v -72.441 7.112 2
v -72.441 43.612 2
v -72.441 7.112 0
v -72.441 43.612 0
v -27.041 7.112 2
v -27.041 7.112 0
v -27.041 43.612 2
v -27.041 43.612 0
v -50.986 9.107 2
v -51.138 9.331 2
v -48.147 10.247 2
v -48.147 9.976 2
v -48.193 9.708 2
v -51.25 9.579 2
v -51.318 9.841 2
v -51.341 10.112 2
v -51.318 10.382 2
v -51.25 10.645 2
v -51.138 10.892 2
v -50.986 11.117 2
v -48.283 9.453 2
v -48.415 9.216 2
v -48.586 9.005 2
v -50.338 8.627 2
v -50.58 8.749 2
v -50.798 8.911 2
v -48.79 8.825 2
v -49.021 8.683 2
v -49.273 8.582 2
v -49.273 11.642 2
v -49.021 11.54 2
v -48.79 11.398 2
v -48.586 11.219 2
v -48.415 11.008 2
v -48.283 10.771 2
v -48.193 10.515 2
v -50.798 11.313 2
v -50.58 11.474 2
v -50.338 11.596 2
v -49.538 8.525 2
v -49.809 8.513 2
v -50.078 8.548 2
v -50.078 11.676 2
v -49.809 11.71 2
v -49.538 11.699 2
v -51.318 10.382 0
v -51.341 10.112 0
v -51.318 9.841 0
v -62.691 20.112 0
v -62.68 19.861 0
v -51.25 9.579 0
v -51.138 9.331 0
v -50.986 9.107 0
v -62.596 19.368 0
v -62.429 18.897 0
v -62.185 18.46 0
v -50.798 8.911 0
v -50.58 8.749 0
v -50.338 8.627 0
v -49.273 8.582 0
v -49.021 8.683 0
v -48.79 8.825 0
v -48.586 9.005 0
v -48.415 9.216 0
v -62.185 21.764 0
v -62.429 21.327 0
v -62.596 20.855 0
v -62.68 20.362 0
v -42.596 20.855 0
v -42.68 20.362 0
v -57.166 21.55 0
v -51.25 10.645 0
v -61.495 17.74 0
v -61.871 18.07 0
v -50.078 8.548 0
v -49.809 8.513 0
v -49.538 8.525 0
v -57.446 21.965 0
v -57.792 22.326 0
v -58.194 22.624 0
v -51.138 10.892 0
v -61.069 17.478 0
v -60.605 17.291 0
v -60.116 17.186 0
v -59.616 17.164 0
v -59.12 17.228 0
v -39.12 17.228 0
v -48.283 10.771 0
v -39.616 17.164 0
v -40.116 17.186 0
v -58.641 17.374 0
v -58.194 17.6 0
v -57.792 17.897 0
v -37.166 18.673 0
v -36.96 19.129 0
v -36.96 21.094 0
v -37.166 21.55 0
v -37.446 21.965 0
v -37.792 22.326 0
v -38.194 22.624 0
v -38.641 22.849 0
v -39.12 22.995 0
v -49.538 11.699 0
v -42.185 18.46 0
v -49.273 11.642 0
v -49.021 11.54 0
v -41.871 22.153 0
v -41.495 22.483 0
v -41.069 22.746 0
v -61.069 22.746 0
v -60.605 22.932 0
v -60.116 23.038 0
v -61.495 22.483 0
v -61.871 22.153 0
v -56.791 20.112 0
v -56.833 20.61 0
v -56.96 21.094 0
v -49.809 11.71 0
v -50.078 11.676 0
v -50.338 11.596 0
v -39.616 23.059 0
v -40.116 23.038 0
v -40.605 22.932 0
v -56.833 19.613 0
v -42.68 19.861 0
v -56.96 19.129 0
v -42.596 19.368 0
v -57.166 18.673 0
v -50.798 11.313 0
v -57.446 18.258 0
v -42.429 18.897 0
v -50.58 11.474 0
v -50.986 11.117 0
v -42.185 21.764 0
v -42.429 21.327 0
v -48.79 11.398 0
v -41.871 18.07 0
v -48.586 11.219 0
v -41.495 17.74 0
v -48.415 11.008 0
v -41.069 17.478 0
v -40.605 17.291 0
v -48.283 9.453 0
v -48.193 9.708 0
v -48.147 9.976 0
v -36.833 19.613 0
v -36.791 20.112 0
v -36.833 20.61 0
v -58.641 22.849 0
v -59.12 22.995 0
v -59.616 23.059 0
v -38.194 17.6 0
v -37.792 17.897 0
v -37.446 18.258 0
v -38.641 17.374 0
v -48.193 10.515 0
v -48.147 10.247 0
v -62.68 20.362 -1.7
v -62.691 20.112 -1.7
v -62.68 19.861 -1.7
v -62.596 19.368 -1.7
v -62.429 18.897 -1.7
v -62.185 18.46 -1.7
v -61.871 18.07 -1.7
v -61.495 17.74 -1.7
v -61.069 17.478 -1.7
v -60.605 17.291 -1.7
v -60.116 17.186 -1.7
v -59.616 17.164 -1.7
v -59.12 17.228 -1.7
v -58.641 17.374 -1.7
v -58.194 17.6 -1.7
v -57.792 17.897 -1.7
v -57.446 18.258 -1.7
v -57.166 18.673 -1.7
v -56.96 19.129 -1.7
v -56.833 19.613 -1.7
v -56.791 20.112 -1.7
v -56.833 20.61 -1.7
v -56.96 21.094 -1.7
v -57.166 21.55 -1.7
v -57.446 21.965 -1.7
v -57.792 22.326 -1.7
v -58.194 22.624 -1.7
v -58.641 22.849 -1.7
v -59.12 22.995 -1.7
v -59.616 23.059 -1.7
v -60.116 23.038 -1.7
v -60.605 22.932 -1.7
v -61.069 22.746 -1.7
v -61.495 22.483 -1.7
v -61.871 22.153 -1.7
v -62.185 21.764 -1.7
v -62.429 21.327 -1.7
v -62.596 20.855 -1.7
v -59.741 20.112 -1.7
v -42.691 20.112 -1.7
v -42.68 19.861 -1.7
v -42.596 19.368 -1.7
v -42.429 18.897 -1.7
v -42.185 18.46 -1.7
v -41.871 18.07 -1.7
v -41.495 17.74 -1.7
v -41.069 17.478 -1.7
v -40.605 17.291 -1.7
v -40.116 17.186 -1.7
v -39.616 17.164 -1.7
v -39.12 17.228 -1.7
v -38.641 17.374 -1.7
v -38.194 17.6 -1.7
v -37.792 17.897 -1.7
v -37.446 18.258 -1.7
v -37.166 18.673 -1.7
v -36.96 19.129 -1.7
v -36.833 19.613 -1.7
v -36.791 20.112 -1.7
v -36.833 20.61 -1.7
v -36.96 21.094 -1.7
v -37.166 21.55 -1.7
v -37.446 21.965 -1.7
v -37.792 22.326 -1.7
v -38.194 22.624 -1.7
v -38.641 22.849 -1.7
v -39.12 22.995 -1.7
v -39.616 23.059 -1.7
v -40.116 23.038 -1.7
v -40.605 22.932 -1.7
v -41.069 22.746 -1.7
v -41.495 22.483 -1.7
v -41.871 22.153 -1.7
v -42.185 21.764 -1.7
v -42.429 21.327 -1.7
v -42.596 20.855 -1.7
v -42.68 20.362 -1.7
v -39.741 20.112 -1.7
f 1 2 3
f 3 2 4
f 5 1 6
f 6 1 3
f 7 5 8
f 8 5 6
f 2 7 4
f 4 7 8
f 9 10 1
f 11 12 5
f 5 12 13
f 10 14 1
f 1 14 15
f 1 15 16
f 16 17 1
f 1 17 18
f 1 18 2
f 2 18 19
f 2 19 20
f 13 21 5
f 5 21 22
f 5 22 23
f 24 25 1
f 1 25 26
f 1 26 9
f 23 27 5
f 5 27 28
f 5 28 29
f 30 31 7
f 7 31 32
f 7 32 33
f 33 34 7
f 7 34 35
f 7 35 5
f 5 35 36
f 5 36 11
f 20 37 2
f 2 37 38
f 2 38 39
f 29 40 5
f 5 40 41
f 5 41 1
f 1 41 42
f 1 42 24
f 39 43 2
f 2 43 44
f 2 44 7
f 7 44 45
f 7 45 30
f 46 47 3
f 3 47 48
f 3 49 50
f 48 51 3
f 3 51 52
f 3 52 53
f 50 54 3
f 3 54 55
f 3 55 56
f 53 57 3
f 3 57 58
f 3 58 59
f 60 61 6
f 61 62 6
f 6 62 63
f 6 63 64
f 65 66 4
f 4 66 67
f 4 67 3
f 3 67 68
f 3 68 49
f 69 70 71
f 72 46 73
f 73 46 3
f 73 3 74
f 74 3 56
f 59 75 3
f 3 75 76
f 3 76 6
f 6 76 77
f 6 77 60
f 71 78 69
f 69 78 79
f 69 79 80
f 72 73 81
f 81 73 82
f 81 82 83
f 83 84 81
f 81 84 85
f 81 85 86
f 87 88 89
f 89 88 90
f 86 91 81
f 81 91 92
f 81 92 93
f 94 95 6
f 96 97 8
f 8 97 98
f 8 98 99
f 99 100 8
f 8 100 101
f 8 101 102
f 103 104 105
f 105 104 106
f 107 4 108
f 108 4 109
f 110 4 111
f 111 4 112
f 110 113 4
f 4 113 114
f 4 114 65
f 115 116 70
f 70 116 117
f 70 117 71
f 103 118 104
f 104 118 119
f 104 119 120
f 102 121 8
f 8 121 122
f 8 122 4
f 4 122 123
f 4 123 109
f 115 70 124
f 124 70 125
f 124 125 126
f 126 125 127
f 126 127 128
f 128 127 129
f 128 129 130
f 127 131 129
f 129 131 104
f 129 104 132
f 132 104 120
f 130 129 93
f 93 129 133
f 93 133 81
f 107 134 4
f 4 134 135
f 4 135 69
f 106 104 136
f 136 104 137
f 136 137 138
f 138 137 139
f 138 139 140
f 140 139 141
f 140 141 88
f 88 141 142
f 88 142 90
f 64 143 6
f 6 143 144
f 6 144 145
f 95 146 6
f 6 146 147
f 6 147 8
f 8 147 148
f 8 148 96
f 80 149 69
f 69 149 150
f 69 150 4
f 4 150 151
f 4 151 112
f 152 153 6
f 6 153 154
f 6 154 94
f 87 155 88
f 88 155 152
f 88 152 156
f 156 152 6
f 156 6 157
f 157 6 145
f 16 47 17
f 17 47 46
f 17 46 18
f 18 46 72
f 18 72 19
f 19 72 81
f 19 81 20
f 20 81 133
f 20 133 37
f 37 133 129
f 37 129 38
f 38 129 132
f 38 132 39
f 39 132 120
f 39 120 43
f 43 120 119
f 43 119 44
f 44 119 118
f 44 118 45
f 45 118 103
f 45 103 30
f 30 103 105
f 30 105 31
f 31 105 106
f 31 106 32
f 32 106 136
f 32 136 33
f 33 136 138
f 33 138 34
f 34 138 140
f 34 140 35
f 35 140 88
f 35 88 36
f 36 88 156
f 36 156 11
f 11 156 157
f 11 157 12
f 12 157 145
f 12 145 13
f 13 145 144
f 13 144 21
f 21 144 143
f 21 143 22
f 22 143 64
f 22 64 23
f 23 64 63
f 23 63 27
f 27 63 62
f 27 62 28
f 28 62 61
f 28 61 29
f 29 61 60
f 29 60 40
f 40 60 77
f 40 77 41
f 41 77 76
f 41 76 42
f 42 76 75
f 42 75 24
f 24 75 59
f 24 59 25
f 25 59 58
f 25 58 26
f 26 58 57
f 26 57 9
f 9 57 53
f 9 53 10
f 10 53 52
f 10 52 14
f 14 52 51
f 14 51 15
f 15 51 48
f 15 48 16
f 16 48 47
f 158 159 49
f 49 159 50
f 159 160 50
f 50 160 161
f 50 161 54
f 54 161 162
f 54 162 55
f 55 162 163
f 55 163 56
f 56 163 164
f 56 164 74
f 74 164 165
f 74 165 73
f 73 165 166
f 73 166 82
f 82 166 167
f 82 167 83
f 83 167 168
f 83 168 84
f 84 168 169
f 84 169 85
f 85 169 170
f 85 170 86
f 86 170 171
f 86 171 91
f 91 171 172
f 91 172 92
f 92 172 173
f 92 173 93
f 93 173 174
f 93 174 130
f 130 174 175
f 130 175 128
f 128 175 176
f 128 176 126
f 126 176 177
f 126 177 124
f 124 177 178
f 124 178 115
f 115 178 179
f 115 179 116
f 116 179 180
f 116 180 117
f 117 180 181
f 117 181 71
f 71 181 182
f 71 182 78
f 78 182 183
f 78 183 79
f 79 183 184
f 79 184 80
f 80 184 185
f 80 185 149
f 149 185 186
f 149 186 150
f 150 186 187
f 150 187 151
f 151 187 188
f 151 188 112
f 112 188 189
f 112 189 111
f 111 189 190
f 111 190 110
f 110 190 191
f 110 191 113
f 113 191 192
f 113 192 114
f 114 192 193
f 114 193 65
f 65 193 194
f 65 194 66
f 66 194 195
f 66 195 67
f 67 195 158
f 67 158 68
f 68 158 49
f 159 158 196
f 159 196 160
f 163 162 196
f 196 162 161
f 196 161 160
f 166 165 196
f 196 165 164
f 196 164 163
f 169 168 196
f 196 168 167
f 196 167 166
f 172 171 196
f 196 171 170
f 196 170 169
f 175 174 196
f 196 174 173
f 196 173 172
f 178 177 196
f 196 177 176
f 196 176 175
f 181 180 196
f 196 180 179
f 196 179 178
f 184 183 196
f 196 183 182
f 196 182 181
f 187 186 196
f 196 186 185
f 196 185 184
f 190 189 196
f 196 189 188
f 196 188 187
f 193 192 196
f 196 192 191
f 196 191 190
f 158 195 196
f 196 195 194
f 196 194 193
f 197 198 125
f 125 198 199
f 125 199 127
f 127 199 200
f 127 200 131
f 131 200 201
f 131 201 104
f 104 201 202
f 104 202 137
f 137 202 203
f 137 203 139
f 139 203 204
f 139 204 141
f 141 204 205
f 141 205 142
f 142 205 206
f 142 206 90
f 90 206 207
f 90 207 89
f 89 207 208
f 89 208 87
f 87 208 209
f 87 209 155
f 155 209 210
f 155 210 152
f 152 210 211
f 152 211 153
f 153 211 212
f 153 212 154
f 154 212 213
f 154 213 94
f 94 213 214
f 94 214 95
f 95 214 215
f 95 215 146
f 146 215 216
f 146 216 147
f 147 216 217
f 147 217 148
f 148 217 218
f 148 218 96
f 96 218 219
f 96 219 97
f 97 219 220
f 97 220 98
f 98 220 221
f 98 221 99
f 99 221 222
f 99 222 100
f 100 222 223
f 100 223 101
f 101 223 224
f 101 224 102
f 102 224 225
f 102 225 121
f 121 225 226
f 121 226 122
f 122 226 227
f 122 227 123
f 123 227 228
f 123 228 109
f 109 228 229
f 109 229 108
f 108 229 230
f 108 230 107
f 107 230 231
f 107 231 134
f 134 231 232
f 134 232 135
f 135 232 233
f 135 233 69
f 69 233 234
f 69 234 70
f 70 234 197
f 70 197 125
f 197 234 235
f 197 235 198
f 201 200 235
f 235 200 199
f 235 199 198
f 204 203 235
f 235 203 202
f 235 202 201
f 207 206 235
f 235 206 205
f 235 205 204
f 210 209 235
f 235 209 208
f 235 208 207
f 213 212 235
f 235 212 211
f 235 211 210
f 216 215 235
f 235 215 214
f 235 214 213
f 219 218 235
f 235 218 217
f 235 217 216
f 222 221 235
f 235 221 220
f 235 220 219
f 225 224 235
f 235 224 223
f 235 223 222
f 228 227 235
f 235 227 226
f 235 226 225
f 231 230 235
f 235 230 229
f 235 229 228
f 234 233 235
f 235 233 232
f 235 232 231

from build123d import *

# Parameters (mm, degrees)
SKETCH_1_W          = 45.4
SKETCH_1_H          = 36.5
EXTRUDE_1_DEPTH     = 2
SKETCH_10_R         = 1.6
CUT_EXTRUDE_9_DEPTH = 85.579435184
SKETCH_10_3_R       = 2.95
EXTRUDE_3_DEPTH     = 1.7


with BuildPart() as part:
    # 草图1 → 凸台-拉伸1 (new body)
    with BuildSketch(Plane.XY):
        with Locations((-49.741035857, 25.361663348)):
            Rectangle(SKETCH_1_W, SKETCH_1_H)
    extrude(amount=EXTRUDE_1_DEPTH)

    # 草图10 → 切除-拉伸9 (cut, through all)
    with BuildSketch(Plane(origin=(0, 0, 0), x_dir=(-1, 0, 0), z_dir=(0, 0, -1))):
        with Locations((49.741035857, 10.111663348)):
            Circle(SKETCH_10_R)
    extrude(amount=-CUT_EXTRUDE_9_DEPTH, mode=Mode.SUBTRACT)

    # 草图10<3> → 凸台-拉伸3 (add)
    with BuildSketch(Plane(origin=(0, 0, 0), x_dir=(-1, 0, 0), z_dir=(0, 0, -1))):
        with Locations((39.741035857, 20.111663348)):
            Circle(SKETCH_10_3_R)
        with Locations((59.741035857, 20.111663348)):
            Circle(SKETCH_10_3_R)
    extrude(amount=EXTRUDE_3_DEPTH)


solid = part.part
